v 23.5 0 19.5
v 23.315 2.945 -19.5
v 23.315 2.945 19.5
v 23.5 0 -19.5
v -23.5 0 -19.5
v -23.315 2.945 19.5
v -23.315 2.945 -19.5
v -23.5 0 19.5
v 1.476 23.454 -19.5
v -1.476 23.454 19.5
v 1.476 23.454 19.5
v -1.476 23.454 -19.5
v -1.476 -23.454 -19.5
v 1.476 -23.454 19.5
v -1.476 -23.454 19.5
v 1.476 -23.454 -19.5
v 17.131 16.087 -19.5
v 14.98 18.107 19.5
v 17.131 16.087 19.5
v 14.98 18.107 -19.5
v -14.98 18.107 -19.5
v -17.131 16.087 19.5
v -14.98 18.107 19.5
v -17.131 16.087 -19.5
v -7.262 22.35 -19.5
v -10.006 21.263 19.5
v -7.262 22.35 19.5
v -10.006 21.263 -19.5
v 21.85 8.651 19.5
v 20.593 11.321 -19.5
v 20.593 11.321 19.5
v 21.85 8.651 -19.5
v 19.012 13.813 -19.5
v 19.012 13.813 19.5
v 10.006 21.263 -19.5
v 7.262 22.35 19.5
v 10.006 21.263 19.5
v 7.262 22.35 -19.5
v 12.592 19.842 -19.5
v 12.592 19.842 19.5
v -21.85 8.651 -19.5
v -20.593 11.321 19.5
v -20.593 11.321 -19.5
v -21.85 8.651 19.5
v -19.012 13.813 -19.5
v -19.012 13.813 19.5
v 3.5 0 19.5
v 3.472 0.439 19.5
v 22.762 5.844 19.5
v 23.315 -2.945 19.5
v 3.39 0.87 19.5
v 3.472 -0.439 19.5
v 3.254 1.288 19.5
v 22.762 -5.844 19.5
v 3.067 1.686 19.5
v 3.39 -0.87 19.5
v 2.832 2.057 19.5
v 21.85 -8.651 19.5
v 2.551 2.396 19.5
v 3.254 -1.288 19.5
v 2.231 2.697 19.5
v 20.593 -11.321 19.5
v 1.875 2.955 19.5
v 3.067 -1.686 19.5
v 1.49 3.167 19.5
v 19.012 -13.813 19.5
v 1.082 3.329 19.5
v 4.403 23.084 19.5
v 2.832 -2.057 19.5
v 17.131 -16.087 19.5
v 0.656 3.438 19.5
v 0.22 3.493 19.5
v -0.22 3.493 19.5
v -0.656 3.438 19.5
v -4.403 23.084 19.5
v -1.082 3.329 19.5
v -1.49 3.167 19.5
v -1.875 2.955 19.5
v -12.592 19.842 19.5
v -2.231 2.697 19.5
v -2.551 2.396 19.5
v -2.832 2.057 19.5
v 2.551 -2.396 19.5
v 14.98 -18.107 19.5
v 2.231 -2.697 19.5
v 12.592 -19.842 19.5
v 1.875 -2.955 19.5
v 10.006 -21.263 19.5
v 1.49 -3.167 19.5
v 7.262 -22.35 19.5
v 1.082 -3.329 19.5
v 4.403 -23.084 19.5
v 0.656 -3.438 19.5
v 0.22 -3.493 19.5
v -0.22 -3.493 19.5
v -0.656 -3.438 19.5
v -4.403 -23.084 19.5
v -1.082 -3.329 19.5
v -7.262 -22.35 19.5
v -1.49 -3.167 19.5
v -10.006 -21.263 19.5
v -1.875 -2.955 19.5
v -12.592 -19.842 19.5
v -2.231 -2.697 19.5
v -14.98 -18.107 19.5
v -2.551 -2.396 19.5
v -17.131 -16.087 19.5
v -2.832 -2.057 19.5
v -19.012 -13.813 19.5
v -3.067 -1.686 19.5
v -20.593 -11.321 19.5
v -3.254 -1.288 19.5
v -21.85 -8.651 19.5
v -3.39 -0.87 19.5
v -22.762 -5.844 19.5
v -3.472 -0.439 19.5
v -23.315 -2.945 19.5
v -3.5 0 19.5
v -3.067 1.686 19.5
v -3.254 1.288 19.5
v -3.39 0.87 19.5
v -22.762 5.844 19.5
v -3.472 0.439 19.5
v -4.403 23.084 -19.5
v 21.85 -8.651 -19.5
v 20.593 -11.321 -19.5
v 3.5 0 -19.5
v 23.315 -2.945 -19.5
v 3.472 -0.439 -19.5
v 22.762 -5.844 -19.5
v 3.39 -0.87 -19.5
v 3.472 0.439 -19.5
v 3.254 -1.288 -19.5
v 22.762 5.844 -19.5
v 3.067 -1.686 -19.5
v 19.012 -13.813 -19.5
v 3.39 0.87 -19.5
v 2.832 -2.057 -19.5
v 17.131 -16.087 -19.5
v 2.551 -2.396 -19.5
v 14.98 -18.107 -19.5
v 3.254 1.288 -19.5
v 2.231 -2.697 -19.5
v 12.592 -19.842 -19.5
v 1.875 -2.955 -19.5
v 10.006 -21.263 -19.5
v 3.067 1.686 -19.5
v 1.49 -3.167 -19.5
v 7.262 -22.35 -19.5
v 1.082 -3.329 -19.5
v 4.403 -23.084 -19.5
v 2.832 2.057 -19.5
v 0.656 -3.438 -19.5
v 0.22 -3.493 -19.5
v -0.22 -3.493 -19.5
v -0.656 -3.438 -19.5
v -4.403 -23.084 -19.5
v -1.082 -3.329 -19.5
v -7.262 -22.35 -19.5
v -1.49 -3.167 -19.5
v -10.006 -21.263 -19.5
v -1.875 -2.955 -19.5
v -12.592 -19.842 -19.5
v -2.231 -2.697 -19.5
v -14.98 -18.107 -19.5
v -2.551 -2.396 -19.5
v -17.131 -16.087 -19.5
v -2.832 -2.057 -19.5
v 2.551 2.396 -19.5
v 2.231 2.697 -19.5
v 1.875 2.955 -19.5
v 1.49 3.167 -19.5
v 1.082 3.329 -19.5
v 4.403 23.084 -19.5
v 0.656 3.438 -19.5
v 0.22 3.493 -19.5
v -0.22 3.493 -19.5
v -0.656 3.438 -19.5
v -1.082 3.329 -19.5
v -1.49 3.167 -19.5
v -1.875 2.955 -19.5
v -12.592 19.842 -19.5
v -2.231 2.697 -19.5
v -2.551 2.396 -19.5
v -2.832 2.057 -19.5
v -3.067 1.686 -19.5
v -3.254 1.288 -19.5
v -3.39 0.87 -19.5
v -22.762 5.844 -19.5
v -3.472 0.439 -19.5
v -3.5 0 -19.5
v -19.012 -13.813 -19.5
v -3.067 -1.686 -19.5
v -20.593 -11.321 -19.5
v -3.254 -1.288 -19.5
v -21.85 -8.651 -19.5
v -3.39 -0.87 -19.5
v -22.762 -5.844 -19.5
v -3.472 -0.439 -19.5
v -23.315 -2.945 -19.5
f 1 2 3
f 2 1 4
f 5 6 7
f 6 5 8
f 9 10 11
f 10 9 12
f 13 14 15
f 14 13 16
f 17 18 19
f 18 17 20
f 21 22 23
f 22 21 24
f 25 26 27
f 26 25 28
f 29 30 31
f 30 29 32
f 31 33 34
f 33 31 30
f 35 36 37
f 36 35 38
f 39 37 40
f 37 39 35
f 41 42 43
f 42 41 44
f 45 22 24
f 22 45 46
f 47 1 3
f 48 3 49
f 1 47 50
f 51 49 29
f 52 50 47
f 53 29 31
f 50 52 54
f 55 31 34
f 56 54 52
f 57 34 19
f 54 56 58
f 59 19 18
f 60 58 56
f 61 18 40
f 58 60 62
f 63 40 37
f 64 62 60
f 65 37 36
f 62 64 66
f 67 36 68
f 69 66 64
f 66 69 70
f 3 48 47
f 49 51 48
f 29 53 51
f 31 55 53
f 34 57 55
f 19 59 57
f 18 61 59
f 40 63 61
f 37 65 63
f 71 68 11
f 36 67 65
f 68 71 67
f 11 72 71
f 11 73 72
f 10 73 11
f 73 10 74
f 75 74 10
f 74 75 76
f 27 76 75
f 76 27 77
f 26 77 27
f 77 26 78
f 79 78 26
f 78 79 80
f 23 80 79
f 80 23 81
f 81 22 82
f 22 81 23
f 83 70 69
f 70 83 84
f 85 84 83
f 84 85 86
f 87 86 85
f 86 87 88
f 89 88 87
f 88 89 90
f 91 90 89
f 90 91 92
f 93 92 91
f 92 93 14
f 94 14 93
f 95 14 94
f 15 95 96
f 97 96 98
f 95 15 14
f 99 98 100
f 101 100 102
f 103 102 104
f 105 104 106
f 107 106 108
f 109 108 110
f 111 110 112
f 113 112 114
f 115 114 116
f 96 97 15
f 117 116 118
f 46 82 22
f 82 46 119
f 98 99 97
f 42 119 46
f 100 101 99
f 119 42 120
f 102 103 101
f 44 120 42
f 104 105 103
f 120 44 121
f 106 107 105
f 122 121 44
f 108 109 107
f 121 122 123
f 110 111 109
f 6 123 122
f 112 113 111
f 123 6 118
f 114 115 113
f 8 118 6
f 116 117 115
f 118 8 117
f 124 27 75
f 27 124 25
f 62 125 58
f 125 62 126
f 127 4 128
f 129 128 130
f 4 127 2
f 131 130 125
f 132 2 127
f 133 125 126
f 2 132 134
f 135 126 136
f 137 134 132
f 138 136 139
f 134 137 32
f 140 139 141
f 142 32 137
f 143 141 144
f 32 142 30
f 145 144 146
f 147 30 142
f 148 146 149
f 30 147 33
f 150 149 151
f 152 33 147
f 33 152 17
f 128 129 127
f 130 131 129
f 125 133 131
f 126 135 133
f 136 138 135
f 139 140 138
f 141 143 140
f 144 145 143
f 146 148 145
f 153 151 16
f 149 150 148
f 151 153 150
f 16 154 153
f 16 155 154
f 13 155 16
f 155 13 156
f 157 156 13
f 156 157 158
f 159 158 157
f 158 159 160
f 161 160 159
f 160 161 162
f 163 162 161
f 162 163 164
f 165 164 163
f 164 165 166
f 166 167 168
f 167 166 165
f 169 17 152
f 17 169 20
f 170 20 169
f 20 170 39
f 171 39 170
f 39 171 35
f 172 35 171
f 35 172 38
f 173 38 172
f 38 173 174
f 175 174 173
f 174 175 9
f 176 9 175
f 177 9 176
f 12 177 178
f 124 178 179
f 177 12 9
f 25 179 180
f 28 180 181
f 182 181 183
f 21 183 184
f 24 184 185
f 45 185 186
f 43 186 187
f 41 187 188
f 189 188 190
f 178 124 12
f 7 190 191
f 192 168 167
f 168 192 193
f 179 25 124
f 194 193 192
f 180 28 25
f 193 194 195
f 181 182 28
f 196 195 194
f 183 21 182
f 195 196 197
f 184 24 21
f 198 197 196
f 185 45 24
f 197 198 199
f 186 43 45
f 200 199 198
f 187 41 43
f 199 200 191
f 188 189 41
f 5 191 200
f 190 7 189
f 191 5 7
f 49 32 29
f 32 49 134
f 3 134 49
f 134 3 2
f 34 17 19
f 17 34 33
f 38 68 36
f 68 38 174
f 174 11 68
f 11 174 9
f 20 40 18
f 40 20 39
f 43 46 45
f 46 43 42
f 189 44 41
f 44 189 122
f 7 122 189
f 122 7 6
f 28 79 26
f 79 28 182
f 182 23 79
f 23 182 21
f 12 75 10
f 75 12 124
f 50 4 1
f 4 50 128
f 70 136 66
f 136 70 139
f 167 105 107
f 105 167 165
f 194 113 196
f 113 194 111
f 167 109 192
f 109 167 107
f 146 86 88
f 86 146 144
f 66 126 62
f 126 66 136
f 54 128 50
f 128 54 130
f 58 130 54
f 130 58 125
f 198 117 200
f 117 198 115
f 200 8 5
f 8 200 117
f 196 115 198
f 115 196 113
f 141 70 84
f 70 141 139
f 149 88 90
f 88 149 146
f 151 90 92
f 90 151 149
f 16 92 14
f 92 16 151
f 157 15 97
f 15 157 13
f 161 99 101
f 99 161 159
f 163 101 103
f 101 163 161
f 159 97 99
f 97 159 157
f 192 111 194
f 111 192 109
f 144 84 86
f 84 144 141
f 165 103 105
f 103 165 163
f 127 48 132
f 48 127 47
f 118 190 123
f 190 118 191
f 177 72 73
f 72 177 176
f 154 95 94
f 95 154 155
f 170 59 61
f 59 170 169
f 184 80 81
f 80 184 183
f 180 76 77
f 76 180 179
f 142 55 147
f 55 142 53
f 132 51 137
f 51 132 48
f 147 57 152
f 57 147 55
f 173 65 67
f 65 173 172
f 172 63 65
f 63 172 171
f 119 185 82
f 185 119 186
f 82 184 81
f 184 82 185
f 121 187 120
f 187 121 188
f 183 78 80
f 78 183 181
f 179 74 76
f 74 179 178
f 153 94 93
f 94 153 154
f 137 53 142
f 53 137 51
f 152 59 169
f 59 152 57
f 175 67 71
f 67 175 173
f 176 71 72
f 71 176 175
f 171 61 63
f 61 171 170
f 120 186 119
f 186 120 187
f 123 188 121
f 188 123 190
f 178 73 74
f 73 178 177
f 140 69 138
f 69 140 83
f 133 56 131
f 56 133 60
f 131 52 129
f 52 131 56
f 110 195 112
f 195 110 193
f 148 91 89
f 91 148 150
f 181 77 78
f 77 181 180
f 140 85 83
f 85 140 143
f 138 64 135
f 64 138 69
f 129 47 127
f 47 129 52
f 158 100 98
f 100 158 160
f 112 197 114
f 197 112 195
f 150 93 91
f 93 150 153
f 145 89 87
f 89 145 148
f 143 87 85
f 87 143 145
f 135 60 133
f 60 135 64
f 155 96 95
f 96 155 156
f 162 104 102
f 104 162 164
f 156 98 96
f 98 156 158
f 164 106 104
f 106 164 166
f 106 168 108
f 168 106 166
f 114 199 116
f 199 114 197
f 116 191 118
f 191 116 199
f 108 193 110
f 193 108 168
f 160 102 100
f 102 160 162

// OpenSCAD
$fn = 50;


difference() {
	union() {
		translate(v = [0, 0, -19.5000000000]) {
			cylinder(h = 39, r = 23.5000000000);
		}
	}
	union() {
		translate(v = [0, 0, -100.0000000000]) {
			cylinder(h = 200, r = 3.5000000000);
		}
	}
}
